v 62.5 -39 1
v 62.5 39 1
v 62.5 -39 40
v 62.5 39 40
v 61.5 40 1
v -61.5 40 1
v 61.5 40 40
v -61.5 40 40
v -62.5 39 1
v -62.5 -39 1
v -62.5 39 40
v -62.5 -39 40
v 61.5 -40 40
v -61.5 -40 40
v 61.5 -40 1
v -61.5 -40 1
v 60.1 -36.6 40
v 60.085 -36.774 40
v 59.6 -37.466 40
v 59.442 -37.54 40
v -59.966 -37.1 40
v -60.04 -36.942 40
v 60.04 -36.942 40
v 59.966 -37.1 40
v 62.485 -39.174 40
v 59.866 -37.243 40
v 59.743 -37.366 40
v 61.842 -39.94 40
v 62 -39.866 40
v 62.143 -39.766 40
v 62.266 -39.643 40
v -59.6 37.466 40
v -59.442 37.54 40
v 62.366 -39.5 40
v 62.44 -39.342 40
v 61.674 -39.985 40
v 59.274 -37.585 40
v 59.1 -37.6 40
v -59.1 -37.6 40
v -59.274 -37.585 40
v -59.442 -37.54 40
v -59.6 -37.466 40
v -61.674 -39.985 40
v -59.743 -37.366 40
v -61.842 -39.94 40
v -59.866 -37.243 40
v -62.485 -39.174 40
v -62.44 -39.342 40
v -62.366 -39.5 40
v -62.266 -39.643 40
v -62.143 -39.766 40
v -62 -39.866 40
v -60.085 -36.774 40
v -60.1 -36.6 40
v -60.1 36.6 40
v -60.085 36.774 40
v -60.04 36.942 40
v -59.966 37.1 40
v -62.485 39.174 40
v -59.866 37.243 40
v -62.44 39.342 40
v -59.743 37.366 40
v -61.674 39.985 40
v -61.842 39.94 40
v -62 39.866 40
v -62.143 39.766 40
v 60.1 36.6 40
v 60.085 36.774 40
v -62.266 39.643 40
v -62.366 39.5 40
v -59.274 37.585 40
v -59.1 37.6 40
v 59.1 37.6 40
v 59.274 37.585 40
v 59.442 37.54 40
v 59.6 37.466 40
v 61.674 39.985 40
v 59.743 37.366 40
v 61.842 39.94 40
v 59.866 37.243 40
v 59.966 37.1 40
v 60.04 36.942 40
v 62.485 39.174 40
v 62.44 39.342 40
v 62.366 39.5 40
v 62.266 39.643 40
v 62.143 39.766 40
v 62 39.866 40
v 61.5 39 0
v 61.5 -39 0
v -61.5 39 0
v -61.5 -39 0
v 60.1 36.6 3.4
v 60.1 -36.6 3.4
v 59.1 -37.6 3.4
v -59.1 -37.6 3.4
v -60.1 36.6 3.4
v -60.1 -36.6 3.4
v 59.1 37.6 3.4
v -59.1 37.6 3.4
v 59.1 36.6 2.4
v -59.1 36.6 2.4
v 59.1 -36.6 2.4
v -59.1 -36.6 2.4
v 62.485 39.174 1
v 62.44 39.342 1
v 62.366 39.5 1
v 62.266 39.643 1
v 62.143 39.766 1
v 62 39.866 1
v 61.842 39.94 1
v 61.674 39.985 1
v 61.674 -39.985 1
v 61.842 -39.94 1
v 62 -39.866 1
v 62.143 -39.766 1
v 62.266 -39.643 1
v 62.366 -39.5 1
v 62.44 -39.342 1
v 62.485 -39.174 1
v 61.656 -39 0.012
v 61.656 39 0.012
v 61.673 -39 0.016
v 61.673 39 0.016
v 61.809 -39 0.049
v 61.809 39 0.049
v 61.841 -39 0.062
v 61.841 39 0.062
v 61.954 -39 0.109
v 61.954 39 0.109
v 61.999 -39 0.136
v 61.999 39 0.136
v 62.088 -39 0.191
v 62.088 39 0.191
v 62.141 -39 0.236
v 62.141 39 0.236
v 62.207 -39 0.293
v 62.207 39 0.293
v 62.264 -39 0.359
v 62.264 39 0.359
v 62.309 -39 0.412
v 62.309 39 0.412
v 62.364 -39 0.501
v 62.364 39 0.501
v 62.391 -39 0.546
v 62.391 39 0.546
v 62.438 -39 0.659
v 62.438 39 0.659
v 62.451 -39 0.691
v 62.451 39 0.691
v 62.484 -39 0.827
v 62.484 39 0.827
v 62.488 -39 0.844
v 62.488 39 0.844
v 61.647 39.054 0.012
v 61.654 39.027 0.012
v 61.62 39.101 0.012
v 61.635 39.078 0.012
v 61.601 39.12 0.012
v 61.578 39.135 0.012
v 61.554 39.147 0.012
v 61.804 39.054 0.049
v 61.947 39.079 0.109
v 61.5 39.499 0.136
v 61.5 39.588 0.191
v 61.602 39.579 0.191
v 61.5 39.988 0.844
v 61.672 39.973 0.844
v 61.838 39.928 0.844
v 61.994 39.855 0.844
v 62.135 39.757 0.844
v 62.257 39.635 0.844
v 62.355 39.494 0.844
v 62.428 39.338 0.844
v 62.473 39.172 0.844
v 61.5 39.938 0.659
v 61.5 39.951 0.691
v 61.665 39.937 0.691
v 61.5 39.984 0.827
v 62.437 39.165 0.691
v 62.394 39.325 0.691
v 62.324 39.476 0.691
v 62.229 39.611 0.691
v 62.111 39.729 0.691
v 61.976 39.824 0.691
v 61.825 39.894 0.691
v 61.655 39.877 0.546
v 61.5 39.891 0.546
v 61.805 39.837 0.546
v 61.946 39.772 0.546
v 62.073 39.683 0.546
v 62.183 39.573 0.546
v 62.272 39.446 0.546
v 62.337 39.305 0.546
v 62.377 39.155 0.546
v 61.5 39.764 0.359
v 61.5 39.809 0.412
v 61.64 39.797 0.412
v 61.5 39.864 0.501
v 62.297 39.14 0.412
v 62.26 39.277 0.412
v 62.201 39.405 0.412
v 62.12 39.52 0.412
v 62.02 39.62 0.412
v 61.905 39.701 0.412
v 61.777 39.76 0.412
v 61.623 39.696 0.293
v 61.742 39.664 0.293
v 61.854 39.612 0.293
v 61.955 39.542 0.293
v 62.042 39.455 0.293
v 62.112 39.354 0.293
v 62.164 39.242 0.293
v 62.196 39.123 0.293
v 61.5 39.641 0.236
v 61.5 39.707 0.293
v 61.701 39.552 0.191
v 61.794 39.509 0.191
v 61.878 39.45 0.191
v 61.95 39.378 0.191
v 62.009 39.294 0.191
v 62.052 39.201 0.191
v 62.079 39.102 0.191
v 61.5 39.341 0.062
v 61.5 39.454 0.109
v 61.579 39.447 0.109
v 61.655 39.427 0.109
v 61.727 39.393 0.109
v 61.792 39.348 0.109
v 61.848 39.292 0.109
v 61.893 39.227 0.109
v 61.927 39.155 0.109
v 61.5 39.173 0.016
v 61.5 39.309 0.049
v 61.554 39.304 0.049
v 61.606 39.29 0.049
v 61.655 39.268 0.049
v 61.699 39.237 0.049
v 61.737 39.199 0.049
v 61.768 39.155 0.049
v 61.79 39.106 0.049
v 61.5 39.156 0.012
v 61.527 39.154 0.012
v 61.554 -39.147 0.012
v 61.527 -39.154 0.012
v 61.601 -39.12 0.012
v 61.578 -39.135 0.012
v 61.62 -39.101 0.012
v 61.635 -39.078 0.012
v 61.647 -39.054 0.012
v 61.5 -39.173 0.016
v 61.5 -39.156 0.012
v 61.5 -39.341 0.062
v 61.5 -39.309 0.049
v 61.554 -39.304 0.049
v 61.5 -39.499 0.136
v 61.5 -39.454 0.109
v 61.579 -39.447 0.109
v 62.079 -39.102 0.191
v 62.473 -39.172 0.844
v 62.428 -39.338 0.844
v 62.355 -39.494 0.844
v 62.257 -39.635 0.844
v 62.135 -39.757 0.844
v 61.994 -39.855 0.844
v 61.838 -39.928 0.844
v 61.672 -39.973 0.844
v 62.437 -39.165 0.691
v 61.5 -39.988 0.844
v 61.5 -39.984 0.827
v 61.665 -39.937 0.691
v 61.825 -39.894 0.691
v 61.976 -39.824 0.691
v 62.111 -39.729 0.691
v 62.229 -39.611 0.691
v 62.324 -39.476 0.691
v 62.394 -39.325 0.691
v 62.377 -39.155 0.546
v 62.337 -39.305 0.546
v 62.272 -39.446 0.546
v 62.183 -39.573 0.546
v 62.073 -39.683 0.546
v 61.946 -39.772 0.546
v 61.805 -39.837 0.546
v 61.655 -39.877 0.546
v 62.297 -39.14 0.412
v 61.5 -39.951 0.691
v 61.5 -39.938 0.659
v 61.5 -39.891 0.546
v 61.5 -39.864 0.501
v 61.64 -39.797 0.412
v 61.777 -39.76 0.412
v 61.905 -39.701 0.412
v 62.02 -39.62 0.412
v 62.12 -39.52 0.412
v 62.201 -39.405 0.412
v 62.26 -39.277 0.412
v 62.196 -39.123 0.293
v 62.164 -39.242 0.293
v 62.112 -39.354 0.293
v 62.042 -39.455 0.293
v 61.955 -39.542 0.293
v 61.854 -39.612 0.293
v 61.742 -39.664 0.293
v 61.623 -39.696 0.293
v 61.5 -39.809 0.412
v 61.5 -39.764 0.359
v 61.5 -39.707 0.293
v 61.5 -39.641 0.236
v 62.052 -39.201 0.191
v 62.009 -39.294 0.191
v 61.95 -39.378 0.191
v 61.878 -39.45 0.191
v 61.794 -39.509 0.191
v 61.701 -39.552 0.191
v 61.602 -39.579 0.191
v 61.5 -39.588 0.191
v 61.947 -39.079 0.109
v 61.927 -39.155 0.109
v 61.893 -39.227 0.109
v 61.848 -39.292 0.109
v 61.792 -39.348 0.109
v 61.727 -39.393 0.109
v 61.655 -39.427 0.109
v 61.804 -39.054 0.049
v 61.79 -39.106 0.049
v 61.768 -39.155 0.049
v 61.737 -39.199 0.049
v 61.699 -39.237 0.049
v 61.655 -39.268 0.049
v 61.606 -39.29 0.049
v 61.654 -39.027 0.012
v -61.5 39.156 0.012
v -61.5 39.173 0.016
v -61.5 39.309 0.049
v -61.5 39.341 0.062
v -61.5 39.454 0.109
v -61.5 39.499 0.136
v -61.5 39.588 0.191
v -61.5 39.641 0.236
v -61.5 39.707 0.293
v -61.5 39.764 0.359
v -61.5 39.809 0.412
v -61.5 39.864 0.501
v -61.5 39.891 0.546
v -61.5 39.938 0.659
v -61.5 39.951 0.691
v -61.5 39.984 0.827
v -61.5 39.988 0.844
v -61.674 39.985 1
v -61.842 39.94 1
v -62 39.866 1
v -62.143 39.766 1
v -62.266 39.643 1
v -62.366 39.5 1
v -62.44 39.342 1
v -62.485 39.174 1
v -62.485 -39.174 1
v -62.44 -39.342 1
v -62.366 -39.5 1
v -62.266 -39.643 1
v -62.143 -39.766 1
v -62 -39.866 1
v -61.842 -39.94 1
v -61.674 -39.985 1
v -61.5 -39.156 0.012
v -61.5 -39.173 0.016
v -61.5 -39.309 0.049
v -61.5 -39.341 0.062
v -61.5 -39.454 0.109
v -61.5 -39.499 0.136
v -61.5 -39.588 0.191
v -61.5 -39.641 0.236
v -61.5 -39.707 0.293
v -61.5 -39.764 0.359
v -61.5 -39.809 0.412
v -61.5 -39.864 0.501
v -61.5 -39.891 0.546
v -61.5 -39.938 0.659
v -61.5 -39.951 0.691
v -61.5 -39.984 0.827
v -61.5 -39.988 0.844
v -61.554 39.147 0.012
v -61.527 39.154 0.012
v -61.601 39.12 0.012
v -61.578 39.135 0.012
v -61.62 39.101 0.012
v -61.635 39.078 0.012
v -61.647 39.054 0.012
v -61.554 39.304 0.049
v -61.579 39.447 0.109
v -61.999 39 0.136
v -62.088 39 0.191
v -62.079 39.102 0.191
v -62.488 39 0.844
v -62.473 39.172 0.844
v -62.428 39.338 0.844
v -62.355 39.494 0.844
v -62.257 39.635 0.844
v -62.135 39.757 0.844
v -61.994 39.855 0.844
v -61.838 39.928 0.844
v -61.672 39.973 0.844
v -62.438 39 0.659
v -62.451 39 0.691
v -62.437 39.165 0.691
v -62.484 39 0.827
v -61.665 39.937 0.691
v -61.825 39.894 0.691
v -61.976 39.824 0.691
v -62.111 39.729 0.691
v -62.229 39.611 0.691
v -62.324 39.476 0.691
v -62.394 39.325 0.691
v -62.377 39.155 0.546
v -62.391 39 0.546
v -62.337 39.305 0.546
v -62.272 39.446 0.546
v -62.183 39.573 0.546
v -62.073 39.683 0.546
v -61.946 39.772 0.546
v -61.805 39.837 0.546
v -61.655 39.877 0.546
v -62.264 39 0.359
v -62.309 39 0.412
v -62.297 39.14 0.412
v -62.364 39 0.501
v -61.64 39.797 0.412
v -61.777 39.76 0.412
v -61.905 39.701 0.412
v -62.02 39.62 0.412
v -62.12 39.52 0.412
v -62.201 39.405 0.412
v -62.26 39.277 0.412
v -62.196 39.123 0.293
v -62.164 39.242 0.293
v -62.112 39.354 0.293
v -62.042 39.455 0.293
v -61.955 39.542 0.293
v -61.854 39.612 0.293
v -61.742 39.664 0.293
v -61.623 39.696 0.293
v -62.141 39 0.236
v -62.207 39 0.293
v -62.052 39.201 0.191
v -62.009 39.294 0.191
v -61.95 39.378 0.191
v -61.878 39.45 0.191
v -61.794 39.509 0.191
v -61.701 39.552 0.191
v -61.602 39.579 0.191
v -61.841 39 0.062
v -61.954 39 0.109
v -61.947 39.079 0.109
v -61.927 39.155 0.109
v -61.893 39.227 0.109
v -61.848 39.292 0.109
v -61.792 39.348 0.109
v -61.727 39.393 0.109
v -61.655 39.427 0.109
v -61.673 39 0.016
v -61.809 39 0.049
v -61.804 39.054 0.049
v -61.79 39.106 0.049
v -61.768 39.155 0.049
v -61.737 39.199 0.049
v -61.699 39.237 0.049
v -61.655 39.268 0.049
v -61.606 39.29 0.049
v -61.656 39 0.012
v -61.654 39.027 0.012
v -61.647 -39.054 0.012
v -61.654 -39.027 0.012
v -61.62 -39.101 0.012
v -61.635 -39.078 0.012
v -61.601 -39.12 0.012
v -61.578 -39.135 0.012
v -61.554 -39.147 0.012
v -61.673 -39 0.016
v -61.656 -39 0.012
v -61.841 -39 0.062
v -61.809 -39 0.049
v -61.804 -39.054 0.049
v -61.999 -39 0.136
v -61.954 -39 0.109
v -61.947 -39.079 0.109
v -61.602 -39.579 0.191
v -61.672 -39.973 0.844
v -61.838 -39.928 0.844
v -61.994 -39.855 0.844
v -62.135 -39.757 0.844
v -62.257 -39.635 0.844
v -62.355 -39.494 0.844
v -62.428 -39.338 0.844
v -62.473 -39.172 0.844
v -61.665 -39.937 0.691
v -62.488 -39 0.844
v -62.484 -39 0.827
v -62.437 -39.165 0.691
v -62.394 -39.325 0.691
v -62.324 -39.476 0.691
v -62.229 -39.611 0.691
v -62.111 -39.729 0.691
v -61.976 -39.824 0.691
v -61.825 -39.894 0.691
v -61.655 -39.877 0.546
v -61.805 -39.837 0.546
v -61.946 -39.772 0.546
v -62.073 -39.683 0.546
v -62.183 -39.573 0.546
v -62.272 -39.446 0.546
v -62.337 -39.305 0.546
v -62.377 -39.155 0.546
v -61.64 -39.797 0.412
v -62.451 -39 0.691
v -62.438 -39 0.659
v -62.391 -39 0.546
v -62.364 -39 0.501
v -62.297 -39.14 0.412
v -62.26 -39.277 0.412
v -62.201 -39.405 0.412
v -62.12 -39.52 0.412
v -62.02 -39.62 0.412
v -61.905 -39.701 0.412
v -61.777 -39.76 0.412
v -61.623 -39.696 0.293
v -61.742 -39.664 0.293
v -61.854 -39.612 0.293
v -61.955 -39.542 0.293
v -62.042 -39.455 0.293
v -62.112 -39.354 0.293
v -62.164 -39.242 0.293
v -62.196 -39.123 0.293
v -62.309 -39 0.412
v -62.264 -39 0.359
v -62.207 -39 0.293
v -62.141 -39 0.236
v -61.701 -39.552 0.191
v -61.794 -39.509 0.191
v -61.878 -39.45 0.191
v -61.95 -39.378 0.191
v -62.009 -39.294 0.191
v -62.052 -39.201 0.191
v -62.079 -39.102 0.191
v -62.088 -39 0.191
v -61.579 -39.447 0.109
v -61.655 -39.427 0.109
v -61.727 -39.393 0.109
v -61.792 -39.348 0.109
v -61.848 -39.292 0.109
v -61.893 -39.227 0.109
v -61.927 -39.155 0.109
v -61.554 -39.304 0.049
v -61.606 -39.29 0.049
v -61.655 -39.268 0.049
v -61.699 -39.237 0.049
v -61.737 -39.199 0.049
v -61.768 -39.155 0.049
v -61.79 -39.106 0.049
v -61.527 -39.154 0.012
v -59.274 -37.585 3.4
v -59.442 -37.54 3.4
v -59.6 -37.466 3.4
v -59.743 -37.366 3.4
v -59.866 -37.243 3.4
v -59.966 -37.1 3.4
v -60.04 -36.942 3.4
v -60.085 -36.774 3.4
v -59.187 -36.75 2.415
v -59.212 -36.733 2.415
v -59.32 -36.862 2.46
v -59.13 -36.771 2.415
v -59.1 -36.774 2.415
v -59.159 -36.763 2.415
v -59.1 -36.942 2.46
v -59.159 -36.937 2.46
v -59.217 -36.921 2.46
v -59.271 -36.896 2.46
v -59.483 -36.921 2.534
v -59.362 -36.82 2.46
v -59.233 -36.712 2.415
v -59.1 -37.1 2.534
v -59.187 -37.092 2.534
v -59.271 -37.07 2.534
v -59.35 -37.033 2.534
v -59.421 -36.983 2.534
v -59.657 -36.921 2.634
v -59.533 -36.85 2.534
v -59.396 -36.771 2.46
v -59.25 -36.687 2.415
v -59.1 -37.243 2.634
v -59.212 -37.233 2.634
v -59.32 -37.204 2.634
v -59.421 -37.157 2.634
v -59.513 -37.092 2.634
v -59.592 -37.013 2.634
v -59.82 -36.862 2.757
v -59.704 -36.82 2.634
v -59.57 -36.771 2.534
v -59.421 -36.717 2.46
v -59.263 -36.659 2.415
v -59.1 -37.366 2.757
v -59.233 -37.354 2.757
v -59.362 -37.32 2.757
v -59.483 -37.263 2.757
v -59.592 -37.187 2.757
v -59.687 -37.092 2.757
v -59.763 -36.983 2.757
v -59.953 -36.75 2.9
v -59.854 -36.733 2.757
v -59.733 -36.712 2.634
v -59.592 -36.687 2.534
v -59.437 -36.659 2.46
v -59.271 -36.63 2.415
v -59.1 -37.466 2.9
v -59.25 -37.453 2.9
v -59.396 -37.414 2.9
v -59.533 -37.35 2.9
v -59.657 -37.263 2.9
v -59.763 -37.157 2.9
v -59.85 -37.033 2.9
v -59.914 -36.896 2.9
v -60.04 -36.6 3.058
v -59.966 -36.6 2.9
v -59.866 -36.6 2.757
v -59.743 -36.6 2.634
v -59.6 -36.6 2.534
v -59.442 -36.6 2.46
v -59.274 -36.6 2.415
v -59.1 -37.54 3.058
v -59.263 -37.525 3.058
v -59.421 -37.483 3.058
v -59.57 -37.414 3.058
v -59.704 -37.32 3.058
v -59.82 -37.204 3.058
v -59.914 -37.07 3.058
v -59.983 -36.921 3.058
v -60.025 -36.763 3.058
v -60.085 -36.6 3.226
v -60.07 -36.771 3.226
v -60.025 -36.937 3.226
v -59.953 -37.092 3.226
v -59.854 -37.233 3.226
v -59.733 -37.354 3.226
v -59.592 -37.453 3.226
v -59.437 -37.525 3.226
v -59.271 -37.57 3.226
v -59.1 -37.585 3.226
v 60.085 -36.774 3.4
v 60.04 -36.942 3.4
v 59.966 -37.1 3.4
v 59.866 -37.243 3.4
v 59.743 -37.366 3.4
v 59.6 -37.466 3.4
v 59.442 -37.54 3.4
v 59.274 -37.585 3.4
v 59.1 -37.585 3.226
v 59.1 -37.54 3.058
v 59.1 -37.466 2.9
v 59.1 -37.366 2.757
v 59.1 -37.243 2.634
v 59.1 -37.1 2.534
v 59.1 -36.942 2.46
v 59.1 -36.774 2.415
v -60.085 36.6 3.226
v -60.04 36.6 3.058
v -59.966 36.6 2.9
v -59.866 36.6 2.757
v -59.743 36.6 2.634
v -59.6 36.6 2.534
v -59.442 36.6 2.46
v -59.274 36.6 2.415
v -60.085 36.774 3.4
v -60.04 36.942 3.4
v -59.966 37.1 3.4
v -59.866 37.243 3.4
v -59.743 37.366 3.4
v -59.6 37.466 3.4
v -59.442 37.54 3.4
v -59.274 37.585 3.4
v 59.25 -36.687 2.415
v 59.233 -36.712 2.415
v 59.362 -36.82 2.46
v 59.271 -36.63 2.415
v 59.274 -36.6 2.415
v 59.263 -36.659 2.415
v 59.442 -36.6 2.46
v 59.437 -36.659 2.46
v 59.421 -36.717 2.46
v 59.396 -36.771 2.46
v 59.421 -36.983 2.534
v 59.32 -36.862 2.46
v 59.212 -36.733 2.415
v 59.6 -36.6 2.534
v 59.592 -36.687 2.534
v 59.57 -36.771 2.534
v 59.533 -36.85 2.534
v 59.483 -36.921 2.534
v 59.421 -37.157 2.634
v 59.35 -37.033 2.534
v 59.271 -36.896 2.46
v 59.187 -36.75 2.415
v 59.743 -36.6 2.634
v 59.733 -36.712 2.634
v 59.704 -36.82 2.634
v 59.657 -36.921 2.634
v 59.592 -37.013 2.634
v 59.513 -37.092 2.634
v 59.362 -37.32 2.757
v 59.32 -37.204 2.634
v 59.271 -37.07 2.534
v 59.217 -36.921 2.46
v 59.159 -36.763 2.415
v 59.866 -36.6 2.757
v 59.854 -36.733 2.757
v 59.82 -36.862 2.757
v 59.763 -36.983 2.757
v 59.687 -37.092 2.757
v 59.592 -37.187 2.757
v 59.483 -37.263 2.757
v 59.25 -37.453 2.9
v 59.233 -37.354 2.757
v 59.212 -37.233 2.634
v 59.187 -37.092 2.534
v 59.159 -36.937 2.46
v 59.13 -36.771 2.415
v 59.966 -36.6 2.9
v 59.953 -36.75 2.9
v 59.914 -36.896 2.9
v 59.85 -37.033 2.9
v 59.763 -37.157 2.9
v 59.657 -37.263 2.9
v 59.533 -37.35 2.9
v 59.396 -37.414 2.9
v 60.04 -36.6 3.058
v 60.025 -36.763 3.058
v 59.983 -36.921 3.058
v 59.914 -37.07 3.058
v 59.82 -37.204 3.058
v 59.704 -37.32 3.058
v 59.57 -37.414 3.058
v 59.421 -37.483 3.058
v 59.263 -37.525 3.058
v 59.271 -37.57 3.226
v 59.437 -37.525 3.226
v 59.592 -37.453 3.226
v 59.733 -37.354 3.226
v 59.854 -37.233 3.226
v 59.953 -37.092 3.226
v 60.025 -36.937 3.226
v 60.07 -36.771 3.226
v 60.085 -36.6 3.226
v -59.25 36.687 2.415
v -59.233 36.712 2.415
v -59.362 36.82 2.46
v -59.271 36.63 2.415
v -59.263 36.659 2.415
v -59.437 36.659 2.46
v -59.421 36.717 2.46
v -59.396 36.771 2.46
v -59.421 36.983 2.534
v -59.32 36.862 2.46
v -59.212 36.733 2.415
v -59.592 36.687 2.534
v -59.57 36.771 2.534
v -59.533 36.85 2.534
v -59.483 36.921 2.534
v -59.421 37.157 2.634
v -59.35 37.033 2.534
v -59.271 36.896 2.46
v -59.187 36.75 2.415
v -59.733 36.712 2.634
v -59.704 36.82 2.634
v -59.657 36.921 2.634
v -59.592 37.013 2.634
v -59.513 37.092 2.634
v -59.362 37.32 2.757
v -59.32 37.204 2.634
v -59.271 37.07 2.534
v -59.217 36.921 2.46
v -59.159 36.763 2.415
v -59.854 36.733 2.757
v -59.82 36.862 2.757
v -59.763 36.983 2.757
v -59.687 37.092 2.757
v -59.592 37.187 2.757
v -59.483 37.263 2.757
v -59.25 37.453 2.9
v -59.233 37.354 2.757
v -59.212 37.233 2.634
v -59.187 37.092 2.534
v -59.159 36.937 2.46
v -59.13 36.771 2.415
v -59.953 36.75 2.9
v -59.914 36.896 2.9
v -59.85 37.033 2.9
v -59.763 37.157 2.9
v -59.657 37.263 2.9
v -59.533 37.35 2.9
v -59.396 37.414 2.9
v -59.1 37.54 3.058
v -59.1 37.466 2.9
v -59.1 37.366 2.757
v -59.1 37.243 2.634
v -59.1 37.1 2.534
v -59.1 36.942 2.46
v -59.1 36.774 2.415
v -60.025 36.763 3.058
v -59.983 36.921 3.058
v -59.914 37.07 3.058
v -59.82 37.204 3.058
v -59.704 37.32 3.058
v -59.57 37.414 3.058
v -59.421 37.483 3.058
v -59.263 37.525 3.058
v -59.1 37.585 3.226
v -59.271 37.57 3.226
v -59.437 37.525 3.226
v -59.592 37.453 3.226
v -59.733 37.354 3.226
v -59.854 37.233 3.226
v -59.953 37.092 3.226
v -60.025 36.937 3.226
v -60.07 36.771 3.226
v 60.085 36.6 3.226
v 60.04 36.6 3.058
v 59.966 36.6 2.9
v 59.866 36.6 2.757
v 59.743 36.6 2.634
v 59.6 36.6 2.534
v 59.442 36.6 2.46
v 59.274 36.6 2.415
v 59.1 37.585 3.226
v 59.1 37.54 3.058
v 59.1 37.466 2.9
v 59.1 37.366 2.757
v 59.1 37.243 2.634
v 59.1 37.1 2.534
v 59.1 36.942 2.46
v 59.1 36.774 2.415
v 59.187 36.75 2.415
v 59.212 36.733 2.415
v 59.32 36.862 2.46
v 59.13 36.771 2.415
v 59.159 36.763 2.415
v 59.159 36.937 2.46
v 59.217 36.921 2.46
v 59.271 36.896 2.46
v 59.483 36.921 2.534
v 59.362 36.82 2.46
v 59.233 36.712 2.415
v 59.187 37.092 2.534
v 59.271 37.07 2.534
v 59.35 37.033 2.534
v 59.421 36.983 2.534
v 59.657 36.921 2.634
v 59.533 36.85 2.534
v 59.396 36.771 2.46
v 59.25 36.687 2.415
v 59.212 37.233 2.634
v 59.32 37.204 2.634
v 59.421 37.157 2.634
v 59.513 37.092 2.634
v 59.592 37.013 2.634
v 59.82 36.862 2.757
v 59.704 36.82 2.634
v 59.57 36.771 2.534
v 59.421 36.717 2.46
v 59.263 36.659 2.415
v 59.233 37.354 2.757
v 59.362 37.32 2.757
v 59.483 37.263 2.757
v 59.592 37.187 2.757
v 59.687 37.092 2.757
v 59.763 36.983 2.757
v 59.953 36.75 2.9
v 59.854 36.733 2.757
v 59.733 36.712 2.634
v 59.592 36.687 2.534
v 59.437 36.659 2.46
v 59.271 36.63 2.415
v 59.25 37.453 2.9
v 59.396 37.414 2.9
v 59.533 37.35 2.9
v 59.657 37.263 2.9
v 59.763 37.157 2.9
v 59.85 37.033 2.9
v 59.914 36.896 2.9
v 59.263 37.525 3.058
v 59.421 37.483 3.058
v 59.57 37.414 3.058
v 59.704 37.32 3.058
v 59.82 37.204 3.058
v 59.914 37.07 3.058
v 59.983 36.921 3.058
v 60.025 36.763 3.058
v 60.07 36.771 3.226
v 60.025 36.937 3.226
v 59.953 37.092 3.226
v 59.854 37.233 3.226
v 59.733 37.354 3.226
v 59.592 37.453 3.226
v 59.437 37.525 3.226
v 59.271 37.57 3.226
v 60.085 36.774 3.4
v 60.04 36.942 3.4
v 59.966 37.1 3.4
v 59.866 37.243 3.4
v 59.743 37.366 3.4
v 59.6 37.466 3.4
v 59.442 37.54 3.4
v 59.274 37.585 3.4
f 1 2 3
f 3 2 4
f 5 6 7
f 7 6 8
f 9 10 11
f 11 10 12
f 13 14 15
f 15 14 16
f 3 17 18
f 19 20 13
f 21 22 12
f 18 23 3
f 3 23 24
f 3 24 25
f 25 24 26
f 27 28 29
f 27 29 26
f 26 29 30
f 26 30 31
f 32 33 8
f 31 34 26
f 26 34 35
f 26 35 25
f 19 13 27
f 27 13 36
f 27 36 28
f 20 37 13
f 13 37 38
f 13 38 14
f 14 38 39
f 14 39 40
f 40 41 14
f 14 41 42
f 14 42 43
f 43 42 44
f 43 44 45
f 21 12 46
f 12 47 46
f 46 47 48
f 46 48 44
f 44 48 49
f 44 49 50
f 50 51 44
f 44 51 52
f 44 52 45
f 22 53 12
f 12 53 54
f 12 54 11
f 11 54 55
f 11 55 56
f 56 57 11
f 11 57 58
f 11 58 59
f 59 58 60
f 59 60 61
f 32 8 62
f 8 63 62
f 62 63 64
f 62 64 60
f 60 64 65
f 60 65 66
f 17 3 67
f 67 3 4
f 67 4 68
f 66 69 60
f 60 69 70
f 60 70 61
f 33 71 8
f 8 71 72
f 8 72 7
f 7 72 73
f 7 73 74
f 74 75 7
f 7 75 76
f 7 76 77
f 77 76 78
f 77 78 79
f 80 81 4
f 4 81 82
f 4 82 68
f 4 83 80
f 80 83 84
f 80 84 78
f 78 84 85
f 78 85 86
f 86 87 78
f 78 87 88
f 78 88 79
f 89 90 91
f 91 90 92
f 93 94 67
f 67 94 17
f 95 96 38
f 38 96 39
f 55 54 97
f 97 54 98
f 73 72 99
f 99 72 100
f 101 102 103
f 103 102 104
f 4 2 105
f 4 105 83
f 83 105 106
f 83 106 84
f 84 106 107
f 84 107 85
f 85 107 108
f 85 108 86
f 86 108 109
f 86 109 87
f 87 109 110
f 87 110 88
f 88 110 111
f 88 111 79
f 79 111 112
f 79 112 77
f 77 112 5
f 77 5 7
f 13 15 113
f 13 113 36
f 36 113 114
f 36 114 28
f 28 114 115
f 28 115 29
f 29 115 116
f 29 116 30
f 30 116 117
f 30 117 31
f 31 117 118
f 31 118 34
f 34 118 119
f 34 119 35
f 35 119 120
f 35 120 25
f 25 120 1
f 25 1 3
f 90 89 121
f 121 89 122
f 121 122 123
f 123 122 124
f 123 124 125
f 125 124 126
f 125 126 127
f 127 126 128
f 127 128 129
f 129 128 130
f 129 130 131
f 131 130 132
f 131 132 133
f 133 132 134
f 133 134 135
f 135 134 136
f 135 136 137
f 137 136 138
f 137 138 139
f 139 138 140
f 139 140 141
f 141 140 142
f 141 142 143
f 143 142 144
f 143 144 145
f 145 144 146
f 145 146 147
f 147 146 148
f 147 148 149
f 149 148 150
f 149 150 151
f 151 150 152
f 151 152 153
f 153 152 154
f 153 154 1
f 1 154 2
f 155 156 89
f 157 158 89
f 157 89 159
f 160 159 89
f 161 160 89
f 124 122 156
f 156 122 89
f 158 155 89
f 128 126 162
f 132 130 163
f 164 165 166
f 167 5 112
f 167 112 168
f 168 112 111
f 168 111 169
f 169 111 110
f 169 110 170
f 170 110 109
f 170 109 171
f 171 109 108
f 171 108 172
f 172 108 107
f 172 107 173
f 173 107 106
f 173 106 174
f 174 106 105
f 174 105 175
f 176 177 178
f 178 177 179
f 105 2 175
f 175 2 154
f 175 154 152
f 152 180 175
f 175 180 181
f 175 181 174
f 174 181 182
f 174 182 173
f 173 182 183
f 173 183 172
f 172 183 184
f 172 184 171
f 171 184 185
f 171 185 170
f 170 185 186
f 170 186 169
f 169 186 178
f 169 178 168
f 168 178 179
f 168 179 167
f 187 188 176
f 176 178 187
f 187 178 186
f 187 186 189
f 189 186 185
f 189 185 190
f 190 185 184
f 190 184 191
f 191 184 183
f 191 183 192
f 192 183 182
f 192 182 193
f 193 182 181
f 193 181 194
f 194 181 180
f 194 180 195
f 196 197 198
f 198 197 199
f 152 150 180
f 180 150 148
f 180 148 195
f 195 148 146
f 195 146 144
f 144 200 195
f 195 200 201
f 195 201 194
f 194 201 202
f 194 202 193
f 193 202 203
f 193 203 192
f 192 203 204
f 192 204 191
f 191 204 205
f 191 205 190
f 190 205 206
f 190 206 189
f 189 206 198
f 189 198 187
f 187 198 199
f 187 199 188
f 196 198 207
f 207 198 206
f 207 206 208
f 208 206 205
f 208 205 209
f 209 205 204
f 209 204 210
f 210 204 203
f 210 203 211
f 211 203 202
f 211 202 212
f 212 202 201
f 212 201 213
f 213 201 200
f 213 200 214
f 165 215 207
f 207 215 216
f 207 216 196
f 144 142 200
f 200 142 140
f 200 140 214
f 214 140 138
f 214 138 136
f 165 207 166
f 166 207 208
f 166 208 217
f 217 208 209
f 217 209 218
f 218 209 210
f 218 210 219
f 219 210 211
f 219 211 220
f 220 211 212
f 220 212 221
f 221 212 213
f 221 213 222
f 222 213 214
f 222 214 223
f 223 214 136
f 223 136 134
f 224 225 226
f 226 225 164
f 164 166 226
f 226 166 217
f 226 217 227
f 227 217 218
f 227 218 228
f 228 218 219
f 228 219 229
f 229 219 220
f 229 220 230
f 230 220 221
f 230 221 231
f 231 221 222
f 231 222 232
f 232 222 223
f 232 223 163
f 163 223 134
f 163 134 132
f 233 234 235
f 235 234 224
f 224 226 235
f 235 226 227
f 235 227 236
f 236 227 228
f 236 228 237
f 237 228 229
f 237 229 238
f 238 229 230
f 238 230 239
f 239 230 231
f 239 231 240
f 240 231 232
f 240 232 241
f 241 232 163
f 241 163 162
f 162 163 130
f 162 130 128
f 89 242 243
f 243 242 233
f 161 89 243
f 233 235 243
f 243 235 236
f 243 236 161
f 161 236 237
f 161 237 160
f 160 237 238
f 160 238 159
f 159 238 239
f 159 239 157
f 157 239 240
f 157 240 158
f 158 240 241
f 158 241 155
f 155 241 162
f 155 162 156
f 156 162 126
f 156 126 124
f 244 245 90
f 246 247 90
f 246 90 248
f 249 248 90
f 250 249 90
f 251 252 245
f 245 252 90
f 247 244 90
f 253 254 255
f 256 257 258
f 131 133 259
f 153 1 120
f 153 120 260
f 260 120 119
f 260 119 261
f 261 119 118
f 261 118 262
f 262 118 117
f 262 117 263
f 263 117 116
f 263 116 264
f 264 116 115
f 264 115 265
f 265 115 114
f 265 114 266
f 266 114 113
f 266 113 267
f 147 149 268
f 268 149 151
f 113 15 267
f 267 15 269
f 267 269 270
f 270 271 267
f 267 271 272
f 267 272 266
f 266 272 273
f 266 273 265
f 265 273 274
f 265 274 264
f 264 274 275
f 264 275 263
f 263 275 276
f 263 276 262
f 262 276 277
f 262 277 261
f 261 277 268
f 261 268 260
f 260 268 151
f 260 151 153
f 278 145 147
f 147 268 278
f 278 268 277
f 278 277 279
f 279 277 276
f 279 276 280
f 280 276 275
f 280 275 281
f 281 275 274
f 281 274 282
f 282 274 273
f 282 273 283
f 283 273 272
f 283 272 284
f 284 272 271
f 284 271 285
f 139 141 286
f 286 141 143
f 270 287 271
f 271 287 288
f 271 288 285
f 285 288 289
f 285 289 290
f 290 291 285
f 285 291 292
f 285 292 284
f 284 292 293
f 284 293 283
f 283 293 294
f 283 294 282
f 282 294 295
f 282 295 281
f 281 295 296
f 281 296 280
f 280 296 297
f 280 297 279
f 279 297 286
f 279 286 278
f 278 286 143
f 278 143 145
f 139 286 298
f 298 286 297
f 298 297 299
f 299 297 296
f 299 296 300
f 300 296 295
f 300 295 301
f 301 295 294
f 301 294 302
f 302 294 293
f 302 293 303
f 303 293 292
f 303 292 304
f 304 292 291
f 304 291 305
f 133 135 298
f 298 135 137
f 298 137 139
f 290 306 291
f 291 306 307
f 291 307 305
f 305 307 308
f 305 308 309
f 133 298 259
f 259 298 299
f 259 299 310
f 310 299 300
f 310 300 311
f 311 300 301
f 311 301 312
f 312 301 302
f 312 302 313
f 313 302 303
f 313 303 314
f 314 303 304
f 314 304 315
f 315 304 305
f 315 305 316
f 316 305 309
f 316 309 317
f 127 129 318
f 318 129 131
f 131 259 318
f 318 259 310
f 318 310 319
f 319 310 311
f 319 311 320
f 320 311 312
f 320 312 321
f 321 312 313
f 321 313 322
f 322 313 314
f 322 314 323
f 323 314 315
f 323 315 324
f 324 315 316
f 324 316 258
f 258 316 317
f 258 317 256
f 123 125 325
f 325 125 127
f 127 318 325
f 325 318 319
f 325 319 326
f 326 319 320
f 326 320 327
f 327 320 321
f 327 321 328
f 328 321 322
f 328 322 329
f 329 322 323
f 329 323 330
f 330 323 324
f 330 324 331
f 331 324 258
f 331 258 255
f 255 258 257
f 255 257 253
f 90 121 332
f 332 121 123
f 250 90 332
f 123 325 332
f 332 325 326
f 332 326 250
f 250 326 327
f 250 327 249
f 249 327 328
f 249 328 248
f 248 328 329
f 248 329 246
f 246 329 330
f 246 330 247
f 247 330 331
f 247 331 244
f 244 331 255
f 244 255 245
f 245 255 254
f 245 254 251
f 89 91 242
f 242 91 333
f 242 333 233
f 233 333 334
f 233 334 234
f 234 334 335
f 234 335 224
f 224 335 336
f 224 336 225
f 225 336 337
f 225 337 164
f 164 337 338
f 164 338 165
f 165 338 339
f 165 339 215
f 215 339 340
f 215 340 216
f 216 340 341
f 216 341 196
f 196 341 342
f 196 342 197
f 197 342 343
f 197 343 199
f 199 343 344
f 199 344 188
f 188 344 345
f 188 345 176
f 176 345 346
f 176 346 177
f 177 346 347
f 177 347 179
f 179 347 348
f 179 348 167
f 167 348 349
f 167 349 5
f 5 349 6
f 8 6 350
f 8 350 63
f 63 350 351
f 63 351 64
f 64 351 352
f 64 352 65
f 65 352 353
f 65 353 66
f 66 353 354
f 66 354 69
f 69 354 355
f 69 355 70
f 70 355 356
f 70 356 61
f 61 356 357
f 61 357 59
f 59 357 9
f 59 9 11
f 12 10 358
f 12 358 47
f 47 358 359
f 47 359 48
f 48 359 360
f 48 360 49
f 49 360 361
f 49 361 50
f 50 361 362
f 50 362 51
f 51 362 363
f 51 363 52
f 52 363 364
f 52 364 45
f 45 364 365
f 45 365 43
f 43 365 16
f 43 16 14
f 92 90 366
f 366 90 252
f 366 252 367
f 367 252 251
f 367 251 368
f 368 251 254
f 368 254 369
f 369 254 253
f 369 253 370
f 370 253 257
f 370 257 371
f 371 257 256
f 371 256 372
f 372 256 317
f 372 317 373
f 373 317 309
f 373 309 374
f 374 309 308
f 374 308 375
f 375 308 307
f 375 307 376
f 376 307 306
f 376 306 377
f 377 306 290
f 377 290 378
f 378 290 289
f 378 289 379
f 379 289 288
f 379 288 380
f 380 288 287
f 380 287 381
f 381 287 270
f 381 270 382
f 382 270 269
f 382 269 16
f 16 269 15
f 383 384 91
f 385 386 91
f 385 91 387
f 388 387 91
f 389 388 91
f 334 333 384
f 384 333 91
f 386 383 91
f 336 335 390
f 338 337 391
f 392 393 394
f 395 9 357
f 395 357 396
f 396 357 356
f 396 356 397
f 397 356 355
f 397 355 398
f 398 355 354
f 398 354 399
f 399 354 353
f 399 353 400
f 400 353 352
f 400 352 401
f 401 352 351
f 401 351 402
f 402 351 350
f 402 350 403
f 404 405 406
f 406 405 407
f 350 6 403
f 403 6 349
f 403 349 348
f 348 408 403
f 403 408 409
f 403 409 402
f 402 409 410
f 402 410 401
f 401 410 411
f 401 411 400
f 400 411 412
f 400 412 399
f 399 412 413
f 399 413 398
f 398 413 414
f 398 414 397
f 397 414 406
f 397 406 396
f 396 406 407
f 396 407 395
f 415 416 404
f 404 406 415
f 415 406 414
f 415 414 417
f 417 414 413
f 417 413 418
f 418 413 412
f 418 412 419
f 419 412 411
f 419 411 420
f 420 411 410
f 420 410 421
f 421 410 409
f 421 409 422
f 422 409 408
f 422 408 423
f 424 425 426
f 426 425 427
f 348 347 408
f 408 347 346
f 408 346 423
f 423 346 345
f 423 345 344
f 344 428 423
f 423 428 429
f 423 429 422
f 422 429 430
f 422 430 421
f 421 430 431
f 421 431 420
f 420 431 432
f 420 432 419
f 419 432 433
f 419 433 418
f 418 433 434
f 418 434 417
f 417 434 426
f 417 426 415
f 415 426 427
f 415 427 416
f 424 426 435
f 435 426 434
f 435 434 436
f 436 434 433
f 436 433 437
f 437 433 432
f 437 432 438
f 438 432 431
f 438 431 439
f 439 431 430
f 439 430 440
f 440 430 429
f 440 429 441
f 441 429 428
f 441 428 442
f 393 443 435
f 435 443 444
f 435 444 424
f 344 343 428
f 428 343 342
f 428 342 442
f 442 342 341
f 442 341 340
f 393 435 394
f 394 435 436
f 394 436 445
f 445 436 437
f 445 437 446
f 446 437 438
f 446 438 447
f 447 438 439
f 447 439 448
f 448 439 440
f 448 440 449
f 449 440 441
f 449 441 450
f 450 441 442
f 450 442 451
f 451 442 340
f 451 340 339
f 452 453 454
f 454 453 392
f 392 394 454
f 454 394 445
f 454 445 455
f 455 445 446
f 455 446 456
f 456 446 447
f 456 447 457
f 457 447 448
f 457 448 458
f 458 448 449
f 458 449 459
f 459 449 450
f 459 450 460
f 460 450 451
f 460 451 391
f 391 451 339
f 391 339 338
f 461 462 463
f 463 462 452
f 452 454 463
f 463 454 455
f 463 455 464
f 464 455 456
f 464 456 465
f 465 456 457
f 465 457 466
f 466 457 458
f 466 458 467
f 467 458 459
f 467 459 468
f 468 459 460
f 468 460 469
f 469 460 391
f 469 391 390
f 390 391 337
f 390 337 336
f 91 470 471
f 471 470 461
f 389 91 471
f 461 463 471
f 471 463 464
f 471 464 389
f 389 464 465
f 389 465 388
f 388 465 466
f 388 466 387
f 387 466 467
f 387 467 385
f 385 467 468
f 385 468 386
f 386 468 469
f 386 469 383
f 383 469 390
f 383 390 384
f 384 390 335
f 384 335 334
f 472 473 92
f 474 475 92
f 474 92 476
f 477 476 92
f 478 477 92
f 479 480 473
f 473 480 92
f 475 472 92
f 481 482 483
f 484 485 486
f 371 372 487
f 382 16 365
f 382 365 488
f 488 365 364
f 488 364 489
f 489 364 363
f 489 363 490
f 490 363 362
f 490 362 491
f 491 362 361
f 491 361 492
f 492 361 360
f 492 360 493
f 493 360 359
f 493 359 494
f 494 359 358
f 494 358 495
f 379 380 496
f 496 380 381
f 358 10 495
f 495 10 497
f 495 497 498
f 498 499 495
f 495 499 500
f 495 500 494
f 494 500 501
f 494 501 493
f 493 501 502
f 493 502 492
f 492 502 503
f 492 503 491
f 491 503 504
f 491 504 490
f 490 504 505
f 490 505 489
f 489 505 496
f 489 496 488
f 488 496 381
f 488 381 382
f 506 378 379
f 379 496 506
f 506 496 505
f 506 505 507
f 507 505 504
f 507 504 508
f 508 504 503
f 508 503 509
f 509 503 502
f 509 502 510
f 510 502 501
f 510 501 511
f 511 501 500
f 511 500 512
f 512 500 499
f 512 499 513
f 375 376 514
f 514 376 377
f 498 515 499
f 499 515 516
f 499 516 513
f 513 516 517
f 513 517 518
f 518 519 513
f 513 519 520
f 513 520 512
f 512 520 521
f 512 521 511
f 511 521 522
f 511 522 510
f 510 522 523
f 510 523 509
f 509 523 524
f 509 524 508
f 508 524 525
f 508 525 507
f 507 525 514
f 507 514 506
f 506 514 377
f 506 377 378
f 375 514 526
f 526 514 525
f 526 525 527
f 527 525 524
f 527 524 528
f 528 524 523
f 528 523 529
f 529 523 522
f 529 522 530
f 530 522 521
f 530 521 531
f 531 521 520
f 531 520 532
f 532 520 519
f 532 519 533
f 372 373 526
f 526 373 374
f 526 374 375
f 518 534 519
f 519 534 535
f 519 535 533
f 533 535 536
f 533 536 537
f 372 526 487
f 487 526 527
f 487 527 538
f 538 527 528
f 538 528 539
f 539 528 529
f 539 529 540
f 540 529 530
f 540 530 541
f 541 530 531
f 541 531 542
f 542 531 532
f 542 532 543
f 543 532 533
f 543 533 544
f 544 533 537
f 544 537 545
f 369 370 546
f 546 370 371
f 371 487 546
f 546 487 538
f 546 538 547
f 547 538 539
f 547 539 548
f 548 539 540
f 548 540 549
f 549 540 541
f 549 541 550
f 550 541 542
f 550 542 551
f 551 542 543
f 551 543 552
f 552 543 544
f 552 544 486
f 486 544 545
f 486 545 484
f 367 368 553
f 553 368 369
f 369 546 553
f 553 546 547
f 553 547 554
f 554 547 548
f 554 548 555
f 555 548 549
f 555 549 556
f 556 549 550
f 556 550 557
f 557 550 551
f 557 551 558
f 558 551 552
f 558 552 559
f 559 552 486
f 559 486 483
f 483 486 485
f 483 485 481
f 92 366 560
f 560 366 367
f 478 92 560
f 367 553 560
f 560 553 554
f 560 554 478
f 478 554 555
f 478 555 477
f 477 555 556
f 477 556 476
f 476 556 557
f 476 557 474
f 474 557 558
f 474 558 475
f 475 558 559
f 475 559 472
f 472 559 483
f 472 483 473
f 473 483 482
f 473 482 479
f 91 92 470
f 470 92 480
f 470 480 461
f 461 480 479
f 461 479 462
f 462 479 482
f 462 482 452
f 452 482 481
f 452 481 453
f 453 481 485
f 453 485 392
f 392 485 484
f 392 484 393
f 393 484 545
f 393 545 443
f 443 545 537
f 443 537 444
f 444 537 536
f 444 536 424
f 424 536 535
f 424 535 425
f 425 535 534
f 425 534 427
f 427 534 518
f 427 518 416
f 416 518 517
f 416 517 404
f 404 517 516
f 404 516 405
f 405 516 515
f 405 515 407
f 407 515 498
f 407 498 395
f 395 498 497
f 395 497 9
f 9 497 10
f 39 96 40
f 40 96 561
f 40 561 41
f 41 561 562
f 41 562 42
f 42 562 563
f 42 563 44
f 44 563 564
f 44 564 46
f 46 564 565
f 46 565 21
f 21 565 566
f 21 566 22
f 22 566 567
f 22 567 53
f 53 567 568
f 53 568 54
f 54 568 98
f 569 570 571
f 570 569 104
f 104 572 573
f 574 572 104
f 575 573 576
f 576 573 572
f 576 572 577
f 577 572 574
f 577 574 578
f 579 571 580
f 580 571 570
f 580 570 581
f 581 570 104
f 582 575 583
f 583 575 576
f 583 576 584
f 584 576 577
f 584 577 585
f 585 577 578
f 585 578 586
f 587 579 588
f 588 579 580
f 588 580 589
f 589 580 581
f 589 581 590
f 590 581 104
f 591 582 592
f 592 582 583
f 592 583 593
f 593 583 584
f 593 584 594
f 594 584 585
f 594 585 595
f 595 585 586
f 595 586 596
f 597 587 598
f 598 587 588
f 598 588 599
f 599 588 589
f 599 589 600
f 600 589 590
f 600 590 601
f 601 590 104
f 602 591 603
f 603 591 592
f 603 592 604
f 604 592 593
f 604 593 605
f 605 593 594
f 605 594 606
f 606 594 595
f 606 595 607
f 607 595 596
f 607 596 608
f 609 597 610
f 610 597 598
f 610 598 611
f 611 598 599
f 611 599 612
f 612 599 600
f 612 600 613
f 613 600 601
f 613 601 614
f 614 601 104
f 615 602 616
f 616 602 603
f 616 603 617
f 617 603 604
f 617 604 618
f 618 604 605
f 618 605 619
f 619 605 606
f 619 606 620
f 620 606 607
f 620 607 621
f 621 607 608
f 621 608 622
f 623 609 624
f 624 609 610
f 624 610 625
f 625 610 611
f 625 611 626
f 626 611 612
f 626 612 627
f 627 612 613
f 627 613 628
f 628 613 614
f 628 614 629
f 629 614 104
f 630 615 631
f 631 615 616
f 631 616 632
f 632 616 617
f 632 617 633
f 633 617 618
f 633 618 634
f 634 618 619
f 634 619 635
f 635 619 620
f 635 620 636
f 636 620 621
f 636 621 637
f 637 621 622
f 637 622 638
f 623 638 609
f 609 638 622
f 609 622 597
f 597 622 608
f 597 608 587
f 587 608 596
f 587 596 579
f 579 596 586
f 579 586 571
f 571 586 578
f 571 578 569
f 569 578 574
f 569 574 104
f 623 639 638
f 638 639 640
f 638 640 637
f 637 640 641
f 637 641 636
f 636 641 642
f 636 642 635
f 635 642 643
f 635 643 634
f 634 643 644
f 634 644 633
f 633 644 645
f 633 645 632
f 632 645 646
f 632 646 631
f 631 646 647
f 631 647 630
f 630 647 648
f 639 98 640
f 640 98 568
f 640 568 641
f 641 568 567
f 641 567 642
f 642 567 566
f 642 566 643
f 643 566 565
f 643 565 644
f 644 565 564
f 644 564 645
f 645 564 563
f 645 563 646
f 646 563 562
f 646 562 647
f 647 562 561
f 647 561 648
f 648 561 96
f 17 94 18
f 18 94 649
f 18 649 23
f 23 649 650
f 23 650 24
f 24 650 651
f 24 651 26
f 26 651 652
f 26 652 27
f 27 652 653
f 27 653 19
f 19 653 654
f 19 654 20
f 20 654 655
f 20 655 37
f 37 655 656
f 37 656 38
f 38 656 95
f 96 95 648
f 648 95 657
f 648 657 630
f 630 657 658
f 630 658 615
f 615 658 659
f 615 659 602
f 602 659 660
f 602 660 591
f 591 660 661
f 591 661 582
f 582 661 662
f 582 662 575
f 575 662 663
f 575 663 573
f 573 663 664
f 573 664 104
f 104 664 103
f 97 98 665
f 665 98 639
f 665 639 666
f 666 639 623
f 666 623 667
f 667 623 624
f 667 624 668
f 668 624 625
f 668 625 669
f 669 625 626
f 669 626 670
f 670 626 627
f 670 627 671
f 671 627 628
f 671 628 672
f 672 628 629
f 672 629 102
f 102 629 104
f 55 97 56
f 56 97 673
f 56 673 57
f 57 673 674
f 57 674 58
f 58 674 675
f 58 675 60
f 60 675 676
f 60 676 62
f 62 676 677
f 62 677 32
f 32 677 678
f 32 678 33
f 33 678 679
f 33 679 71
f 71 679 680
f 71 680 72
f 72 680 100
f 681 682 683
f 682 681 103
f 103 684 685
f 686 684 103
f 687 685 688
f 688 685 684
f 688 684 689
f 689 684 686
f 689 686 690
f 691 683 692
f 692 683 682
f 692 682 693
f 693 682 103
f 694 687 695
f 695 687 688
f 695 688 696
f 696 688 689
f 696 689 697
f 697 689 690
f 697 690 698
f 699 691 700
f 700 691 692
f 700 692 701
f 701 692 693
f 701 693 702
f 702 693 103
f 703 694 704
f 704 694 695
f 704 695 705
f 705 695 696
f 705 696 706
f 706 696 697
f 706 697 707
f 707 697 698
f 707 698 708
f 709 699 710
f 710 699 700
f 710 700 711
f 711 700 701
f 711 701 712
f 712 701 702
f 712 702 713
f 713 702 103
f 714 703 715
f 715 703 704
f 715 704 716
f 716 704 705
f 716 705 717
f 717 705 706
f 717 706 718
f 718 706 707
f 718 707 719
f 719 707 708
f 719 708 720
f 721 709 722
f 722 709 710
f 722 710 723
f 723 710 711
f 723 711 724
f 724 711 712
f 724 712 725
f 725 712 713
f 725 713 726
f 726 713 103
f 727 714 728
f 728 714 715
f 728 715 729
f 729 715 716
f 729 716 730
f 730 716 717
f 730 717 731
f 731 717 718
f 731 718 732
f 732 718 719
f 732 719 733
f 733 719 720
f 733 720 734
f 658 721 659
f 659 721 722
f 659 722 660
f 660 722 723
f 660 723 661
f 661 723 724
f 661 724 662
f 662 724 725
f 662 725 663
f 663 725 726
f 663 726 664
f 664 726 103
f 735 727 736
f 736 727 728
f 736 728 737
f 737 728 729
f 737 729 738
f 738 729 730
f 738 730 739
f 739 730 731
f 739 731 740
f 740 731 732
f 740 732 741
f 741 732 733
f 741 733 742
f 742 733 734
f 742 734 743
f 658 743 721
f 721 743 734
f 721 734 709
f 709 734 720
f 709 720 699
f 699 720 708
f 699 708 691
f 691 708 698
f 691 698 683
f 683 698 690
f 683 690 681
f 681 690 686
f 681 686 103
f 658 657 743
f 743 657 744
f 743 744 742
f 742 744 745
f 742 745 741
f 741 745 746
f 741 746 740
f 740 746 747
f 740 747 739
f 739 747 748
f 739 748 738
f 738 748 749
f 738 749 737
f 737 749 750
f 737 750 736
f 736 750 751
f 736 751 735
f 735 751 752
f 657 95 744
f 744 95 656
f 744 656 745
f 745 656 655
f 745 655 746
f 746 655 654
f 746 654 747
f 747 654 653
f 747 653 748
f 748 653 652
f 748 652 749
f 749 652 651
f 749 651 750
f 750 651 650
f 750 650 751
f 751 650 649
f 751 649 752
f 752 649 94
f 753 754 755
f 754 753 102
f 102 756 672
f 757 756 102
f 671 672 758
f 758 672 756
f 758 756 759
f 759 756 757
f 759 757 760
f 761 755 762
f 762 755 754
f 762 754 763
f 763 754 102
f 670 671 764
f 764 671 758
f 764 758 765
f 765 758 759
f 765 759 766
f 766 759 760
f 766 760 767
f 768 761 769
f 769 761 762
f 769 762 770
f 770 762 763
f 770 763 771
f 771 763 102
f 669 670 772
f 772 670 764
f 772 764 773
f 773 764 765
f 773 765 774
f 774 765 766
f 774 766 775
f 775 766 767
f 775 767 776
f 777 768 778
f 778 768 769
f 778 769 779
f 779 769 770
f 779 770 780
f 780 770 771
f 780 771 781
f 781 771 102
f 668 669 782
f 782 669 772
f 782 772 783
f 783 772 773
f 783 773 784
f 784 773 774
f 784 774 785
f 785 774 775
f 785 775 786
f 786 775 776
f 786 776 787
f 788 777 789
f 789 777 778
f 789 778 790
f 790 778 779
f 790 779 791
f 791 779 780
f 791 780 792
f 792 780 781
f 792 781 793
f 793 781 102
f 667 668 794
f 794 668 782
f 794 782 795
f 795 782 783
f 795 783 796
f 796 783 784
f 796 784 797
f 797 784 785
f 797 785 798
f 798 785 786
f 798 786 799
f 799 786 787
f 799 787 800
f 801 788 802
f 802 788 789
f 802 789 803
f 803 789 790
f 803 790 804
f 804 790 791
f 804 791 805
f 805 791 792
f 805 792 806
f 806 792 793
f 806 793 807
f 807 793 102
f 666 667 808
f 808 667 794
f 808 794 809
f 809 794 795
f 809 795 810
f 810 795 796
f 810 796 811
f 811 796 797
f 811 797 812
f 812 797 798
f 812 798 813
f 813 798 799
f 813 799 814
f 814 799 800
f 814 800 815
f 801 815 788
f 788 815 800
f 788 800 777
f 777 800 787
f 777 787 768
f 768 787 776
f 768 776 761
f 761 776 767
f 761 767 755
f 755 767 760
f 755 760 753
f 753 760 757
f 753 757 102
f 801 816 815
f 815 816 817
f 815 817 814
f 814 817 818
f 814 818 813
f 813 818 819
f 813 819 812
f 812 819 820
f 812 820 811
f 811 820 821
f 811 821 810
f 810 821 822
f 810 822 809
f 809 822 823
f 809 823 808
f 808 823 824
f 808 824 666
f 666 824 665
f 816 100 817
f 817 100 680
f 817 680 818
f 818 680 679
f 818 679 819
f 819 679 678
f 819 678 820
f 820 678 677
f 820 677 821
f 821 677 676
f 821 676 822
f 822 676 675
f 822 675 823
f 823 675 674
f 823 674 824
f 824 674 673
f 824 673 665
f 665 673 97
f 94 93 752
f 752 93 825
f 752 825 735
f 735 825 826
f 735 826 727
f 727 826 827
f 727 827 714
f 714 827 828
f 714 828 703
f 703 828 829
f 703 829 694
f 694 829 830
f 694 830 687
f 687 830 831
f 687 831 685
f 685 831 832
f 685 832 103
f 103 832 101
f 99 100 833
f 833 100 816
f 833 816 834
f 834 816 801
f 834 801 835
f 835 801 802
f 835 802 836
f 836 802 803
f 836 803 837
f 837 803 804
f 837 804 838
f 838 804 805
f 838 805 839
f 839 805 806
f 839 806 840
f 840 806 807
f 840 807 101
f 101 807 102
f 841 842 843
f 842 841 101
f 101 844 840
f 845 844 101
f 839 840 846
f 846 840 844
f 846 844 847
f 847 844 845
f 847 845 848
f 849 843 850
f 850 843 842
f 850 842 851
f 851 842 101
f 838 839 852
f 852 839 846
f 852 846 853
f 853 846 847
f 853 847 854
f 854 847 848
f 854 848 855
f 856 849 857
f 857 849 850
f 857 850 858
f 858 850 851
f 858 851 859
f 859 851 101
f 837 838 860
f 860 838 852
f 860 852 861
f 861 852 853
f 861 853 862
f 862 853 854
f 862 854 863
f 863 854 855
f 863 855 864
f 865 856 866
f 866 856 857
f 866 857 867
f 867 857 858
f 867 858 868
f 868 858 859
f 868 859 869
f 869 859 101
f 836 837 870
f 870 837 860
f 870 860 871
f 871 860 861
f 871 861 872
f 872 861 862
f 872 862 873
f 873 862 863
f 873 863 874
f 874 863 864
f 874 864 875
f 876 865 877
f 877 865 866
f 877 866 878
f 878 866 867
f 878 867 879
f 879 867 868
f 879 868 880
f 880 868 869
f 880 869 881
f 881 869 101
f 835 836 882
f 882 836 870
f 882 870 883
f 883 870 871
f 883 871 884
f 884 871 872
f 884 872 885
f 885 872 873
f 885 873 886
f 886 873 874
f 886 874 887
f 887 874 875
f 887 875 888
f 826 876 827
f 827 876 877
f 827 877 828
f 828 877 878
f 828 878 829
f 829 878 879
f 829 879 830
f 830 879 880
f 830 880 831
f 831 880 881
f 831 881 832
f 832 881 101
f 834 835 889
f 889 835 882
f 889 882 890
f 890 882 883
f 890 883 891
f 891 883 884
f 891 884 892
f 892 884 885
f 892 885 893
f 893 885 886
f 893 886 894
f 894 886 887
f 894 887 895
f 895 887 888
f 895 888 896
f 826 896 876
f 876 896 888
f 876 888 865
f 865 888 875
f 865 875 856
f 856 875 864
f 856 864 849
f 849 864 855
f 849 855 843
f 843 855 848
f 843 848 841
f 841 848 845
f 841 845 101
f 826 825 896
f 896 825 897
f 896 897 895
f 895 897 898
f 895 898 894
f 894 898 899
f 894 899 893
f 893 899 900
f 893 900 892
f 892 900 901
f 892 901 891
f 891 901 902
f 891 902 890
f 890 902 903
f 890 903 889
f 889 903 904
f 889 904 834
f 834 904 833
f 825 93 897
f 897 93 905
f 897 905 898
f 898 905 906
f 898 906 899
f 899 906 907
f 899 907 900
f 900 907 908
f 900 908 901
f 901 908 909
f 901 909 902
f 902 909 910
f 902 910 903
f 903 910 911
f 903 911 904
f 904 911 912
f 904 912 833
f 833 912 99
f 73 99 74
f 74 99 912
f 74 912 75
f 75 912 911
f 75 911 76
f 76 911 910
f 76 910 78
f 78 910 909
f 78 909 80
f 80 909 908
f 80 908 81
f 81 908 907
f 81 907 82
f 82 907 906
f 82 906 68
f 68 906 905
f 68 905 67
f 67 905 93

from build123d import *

# Parameters (mm, degrees)
SKETCH_1_W          = 125
SKETCH_1_H          = 80
EXTRUDE_1_DEPTH     = 40
SKETCH_2_W          = 120.2
SKETCH_2_H          = 75.2
CUT_EXTRUDE_1_DEPTH = 37.6
FILLET_1_R          = 1
FILLET_2_R          = 1


with BuildPart() as part:
    # Эскиз1 → Бобышка-Вытянуть1 (new body)
    with BuildSketch(Plane.XY):
        Rectangle(SKETCH_1_W, SKETCH_1_H)
    extrude(amount=EXTRUDE_1_DEPTH)

    # Эскиз2 → Вырез-Вытянуть1 (cut)
    with BuildSketch(Plane.XY.offset(40)):
        Rectangle(SKETCH_2_W, SKETCH_2_H)
    extrude(amount=-CUT_EXTRUDE_1_DEPTH, mode=Mode.SUBTRACT)

    # Скругление1
    fillet_1_edges = [part.edges().sort_by_distance(p)[0] for p in [
        (0, -40, 0),
        (-62.5, 0, 0),
        (0, 40, 0),
        (62.5, 0, 0),
        (62.5, -40, 20),
        (-62.5, -40, 20),
        (-62.5, 40, 20),
        (62.5, 40, 20),
    ]]
    fillet(fillet_1_edges, radius=FILLET_1_R)

    # Скругление2
    fillet_2_edges = [part.edges().sort_by_distance(p)[0] for p in [
        (60.1, 0, 2.4),
        (60.1, 37.6, 21.2),
        (0, -37.6, 2.4),
        (60.1, -37.6, 21.2),
        (-60.1, 0, 2.4),
        (-60.1, -37.6, 21.2),
        (0, 37.6, 2.4),
        (-60.1, 37.6, 21.2),
    ]]
    fillet(fillet_2_edges, radius=FILLET_2_R)


solid = part.part
